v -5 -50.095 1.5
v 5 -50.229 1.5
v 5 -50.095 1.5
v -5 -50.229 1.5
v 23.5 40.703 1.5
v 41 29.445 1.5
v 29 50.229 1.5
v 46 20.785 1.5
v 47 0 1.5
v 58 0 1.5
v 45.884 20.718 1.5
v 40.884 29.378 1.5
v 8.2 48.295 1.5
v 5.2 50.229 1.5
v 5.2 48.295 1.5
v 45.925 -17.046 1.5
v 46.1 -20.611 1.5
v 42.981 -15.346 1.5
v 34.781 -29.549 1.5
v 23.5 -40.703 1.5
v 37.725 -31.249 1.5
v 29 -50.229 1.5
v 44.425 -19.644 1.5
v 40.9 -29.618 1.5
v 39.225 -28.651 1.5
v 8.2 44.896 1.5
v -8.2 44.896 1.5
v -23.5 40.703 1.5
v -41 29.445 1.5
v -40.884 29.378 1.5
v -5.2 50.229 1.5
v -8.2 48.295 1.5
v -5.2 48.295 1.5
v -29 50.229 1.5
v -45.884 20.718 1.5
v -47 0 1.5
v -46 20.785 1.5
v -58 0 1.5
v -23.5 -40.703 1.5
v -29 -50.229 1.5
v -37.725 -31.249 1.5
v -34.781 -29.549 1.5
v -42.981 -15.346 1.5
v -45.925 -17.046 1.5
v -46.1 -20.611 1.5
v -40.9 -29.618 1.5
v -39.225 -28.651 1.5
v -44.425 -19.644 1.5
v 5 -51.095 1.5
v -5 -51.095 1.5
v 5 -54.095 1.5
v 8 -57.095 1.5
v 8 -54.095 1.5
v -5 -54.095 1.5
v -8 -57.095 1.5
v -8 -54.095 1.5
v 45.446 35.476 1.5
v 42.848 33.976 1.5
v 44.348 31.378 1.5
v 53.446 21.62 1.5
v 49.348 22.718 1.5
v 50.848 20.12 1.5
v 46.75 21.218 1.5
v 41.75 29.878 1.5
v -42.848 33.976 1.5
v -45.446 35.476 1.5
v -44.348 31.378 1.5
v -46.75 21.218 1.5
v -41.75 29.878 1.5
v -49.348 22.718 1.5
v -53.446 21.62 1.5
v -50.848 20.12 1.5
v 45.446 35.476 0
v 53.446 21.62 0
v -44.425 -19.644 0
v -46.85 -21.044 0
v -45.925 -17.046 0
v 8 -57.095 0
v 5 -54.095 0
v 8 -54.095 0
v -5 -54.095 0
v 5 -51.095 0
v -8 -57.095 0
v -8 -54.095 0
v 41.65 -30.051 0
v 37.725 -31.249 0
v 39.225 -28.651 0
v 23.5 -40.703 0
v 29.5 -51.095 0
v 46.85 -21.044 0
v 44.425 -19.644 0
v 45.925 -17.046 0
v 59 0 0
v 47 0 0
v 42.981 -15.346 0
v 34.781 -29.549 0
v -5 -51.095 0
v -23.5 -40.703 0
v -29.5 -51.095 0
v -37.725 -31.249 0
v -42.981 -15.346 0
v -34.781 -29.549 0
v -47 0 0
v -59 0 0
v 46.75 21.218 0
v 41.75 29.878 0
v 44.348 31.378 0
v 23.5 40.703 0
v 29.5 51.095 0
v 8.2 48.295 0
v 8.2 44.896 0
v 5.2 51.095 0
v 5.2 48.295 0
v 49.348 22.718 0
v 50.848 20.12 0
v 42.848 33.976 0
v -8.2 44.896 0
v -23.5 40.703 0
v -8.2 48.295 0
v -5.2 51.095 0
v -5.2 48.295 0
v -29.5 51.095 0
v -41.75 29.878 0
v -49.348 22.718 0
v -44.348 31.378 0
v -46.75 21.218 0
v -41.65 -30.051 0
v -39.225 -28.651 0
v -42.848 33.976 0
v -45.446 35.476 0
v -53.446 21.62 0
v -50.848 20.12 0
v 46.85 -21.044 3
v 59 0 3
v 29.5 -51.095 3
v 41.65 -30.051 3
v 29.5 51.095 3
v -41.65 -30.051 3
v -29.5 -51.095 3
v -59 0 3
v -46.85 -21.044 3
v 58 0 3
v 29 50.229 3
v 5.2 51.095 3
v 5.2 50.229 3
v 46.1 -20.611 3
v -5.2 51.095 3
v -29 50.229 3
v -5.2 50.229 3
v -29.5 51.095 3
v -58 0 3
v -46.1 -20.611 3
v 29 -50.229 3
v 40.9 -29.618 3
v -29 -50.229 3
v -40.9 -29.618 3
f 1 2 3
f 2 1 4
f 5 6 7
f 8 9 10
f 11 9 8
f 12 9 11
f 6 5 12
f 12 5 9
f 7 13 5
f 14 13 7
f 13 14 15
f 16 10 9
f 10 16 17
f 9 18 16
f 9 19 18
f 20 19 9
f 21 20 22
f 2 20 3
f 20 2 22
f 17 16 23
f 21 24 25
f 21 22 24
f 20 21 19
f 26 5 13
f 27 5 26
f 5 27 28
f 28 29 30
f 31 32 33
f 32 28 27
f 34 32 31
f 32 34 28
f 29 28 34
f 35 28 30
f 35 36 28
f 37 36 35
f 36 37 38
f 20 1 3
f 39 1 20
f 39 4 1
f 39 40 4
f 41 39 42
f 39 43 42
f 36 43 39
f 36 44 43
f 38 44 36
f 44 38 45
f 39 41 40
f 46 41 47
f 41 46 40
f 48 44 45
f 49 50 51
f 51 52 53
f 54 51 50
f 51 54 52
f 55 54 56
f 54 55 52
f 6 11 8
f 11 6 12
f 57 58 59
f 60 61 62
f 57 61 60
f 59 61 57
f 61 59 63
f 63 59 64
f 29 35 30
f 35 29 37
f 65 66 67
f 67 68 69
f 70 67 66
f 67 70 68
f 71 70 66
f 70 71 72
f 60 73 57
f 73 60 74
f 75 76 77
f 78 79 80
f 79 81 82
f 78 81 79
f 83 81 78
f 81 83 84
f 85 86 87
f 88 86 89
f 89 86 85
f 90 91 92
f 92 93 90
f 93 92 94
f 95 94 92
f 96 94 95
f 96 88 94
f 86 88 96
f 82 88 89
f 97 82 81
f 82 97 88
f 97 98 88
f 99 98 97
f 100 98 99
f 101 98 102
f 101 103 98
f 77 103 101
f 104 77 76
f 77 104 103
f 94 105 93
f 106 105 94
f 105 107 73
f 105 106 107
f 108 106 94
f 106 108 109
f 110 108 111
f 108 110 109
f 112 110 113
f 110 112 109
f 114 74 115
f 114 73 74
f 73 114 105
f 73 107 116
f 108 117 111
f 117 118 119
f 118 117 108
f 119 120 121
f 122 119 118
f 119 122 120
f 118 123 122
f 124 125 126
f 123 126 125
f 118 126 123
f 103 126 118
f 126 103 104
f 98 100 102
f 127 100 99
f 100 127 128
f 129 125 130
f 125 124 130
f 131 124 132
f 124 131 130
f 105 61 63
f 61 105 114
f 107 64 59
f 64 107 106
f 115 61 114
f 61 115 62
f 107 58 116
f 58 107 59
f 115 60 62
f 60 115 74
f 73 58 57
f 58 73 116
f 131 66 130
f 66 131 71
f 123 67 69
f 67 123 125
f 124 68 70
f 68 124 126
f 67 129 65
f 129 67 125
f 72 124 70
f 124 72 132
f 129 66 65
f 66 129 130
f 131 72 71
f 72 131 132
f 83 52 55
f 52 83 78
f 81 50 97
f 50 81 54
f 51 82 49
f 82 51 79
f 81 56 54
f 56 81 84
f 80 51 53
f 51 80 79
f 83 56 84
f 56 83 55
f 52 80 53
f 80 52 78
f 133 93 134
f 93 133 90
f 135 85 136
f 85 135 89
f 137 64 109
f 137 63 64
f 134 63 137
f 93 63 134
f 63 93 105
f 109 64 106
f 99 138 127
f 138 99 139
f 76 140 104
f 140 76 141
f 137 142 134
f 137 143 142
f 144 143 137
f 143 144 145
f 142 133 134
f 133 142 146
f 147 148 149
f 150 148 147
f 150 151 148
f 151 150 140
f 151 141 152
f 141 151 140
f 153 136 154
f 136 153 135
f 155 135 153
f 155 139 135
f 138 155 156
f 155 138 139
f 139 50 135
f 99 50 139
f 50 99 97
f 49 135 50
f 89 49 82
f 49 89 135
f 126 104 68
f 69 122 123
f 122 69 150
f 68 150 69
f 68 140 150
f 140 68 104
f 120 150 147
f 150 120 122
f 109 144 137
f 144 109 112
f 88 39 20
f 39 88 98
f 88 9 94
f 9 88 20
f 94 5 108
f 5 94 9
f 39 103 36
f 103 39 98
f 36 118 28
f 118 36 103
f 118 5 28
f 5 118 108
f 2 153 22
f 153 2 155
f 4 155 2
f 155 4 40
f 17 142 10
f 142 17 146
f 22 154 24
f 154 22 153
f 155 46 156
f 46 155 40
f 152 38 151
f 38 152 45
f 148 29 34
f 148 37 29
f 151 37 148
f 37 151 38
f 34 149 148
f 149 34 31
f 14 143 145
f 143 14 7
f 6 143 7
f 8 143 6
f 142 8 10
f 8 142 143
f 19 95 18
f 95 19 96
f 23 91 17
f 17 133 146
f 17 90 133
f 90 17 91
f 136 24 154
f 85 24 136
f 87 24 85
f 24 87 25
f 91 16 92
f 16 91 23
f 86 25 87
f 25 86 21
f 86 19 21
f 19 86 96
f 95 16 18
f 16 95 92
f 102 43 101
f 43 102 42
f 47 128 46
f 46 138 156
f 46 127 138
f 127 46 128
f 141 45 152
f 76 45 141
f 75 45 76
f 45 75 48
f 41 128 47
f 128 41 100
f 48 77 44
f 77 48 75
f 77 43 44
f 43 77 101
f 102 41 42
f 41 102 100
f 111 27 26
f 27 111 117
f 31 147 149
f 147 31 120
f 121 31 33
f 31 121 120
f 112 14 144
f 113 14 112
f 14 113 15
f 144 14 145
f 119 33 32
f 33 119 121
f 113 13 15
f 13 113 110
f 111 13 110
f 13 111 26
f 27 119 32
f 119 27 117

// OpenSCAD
function smallRadius(radius) = radius * sqrt(3)/2;

module hexTile(diameter, height) {
  linear_extrude(height=height) {
    circle(d=diameter, $fn=6);
  }
}

module connector(
    height,
    connector_neck_width,  // width of the "neck" part of the connector
    connector_neck_length, // length of the "neck" part of the connector
    connector_head_width,  // width of the "head" part of the connector -> this will "click" inside
    connector_head_length, // length of the "head" part of the connector -> this will "click" inside
) {
    cube([connector_neck_length+connector_head_length, connector_neck_width, height]);
    single_connector_side_width = (connector_head_width - connector_neck_width) / 2;
    translate([connector_neck_length, -single_connector_side_width, 0])
        cube([connector_head_length, connector_head_width, height]);
}

module connectorMale(
    height,
    connector_neck_width,  // width of the "neck" part of the connector
    connector_neck_length, // length of the "neck" part of the connector
    connector_head_width,  // width of the "head" part of the connector -> this will "click" inside
    connector_head_length, // length of the "head" part of the connector -> this will "click" inside
) {
    connector(height, connector_neck_width, connector_neck_length, connector_head_width, connector_head_length);
}

module connectorFemale(
    height,
    connector_neck_width,  // width of the "neck" part of the connector
    connector_neck_length, // length of the "neck" part of the connector
    connector_head_width,  // width of the "head" part of the connector -> this will "click" inside
    connector_head_length, // length of the "head" part of the connector -> this will "click" inside
) {
    translate([0, connector_neck_width, 0])
        rotate([0,0,180])
            connector(height, connector_neck_width, connector_neck_length, connector_head_width, connector_head_length);
}

module hex(height, longest_width, inner_ring_width, outer_ring_width, ring_dig_height) {
    difference() {
        hexTile(longest_width, height);
        // remove inner hex
        translate([0,0,-0.5])
            hexTile(longest_width - 2*inner_ring_width, height*2);
        // "dig" into the remaining hex 
        translate([0,0,height - ring_dig_height])
            hexTile(longest_width - 2*outer_ring_width, height+1);  
    }
}

module tileStand(
    height,            // height of the whole stand
    longest_width,     // width at the widest part
    inner_ring_width,  // width of the bottom ring
    outer_ring_width,  // width of the upper (smaller, outer) ring
    outer_ring_height, // height of the upper (smaller, outer) ring
    connector_neck_width,  // width of the "neck" part of the connector
    connector_neck_length, // length of the "neck" part of the connector
    connector_head_width,  // width of the "head" part of the connector -> this will "click" inside
    connector_head_length, // length of the "head" part of the connector -> this will "click" inside
    connector_space,       // space between male and female connector
) {
    rad = smallRadius(long_width/2);
    connector_height = height - outer_ring_height;
    
    // used to join two neighboring parts (to create overlap)
    overlap = 1;
    // male connectors
    connector_width_shift = -(connector_neck_width/2);
    // top right
    rotate([0,0,30])
        translate([rad-overlap,connector_width_shift,0])
            connectorMale(
                connector_height,
                connector_neck_width, 
                connector_neck_length+overlap, 
                connector_head_width, 
                connector_head_length
            );
    // top left
    rotate([0,0,150])
        translate([rad-overlap,connector_width_shift,0])
            connectorMale(
                connector_height,
                connector_neck_width, 
                connector_neck_length+overlap, 
                connector_head_width, 
                connector_head_length
            );
    // bottom
    rotate([0,0,-90])
        translate([rad-overlap,connector_width_shift,0])
            connectorMale(
                connector_height,
                connector_neck_width, 
                connector_neck_length+overlap, 
                connector_head_width, 
                connector_head_length
            );
    
    // female connectors
    
    // - larger for overlap
    fem_height = connector_height + height * 2 + overlap;
    fem_length_shift = rad + overlap; 
    // - add connector space to make the connector "bigger" in all dimensions
    fem_neck_length = connector_neck_length + overlap - connector_space;
    fem_neck_width = connector_neck_width + connector_space * 2;
    fem_width_shift = -(fem_neck_width/2);
    fem_head_length = connector_head_length + connector_space * 2;
    fem_head_width = connector_head_width + connector_space * 2;
    
    difference() {
        hex(height, longest_width, inner_ring_width, outer_ring_width, outer_ring_height);
        // bottom right
        rotate([0,0,-30])
            translate([fem_length_shift,fem_width_shift,-overlap])
                connectorFemale(
                    fem_height,
                    fem_neck_width, 
                    fem_neck_length, 
                    fem_head_width, 
                    fem_head_length
                );
        // bottom left
        rotate([0,0,-150])
            translate([fem_length_shift,fem_width_shift,-overlap])
                connectorFemale(
                    fem_height,
                    fem_neck_width, 
                    fem_neck_length, 
                    fem_head_width, 
                    fem_head_length
                );
        // top
        rotate([0,0,90])
            translate([fem_length_shift,fem_width_shift,-overlap])
                connectorFemale(
                    fem_height,
                    fem_neck_width, 
                    fem_neck_length, 
                    fem_head_width, 
                    fem_head_length
                );
    }
}

module holder(length, width) {
    translate([0,-width/2,0])
      cube([length,7,1.5]);
}

long_width = 118;

tileStand(3, long_width, 12, 1, 1.5, 10, 3, 16, 3, 0.2);

// real tile:
// hexTile(116, 1.5);
